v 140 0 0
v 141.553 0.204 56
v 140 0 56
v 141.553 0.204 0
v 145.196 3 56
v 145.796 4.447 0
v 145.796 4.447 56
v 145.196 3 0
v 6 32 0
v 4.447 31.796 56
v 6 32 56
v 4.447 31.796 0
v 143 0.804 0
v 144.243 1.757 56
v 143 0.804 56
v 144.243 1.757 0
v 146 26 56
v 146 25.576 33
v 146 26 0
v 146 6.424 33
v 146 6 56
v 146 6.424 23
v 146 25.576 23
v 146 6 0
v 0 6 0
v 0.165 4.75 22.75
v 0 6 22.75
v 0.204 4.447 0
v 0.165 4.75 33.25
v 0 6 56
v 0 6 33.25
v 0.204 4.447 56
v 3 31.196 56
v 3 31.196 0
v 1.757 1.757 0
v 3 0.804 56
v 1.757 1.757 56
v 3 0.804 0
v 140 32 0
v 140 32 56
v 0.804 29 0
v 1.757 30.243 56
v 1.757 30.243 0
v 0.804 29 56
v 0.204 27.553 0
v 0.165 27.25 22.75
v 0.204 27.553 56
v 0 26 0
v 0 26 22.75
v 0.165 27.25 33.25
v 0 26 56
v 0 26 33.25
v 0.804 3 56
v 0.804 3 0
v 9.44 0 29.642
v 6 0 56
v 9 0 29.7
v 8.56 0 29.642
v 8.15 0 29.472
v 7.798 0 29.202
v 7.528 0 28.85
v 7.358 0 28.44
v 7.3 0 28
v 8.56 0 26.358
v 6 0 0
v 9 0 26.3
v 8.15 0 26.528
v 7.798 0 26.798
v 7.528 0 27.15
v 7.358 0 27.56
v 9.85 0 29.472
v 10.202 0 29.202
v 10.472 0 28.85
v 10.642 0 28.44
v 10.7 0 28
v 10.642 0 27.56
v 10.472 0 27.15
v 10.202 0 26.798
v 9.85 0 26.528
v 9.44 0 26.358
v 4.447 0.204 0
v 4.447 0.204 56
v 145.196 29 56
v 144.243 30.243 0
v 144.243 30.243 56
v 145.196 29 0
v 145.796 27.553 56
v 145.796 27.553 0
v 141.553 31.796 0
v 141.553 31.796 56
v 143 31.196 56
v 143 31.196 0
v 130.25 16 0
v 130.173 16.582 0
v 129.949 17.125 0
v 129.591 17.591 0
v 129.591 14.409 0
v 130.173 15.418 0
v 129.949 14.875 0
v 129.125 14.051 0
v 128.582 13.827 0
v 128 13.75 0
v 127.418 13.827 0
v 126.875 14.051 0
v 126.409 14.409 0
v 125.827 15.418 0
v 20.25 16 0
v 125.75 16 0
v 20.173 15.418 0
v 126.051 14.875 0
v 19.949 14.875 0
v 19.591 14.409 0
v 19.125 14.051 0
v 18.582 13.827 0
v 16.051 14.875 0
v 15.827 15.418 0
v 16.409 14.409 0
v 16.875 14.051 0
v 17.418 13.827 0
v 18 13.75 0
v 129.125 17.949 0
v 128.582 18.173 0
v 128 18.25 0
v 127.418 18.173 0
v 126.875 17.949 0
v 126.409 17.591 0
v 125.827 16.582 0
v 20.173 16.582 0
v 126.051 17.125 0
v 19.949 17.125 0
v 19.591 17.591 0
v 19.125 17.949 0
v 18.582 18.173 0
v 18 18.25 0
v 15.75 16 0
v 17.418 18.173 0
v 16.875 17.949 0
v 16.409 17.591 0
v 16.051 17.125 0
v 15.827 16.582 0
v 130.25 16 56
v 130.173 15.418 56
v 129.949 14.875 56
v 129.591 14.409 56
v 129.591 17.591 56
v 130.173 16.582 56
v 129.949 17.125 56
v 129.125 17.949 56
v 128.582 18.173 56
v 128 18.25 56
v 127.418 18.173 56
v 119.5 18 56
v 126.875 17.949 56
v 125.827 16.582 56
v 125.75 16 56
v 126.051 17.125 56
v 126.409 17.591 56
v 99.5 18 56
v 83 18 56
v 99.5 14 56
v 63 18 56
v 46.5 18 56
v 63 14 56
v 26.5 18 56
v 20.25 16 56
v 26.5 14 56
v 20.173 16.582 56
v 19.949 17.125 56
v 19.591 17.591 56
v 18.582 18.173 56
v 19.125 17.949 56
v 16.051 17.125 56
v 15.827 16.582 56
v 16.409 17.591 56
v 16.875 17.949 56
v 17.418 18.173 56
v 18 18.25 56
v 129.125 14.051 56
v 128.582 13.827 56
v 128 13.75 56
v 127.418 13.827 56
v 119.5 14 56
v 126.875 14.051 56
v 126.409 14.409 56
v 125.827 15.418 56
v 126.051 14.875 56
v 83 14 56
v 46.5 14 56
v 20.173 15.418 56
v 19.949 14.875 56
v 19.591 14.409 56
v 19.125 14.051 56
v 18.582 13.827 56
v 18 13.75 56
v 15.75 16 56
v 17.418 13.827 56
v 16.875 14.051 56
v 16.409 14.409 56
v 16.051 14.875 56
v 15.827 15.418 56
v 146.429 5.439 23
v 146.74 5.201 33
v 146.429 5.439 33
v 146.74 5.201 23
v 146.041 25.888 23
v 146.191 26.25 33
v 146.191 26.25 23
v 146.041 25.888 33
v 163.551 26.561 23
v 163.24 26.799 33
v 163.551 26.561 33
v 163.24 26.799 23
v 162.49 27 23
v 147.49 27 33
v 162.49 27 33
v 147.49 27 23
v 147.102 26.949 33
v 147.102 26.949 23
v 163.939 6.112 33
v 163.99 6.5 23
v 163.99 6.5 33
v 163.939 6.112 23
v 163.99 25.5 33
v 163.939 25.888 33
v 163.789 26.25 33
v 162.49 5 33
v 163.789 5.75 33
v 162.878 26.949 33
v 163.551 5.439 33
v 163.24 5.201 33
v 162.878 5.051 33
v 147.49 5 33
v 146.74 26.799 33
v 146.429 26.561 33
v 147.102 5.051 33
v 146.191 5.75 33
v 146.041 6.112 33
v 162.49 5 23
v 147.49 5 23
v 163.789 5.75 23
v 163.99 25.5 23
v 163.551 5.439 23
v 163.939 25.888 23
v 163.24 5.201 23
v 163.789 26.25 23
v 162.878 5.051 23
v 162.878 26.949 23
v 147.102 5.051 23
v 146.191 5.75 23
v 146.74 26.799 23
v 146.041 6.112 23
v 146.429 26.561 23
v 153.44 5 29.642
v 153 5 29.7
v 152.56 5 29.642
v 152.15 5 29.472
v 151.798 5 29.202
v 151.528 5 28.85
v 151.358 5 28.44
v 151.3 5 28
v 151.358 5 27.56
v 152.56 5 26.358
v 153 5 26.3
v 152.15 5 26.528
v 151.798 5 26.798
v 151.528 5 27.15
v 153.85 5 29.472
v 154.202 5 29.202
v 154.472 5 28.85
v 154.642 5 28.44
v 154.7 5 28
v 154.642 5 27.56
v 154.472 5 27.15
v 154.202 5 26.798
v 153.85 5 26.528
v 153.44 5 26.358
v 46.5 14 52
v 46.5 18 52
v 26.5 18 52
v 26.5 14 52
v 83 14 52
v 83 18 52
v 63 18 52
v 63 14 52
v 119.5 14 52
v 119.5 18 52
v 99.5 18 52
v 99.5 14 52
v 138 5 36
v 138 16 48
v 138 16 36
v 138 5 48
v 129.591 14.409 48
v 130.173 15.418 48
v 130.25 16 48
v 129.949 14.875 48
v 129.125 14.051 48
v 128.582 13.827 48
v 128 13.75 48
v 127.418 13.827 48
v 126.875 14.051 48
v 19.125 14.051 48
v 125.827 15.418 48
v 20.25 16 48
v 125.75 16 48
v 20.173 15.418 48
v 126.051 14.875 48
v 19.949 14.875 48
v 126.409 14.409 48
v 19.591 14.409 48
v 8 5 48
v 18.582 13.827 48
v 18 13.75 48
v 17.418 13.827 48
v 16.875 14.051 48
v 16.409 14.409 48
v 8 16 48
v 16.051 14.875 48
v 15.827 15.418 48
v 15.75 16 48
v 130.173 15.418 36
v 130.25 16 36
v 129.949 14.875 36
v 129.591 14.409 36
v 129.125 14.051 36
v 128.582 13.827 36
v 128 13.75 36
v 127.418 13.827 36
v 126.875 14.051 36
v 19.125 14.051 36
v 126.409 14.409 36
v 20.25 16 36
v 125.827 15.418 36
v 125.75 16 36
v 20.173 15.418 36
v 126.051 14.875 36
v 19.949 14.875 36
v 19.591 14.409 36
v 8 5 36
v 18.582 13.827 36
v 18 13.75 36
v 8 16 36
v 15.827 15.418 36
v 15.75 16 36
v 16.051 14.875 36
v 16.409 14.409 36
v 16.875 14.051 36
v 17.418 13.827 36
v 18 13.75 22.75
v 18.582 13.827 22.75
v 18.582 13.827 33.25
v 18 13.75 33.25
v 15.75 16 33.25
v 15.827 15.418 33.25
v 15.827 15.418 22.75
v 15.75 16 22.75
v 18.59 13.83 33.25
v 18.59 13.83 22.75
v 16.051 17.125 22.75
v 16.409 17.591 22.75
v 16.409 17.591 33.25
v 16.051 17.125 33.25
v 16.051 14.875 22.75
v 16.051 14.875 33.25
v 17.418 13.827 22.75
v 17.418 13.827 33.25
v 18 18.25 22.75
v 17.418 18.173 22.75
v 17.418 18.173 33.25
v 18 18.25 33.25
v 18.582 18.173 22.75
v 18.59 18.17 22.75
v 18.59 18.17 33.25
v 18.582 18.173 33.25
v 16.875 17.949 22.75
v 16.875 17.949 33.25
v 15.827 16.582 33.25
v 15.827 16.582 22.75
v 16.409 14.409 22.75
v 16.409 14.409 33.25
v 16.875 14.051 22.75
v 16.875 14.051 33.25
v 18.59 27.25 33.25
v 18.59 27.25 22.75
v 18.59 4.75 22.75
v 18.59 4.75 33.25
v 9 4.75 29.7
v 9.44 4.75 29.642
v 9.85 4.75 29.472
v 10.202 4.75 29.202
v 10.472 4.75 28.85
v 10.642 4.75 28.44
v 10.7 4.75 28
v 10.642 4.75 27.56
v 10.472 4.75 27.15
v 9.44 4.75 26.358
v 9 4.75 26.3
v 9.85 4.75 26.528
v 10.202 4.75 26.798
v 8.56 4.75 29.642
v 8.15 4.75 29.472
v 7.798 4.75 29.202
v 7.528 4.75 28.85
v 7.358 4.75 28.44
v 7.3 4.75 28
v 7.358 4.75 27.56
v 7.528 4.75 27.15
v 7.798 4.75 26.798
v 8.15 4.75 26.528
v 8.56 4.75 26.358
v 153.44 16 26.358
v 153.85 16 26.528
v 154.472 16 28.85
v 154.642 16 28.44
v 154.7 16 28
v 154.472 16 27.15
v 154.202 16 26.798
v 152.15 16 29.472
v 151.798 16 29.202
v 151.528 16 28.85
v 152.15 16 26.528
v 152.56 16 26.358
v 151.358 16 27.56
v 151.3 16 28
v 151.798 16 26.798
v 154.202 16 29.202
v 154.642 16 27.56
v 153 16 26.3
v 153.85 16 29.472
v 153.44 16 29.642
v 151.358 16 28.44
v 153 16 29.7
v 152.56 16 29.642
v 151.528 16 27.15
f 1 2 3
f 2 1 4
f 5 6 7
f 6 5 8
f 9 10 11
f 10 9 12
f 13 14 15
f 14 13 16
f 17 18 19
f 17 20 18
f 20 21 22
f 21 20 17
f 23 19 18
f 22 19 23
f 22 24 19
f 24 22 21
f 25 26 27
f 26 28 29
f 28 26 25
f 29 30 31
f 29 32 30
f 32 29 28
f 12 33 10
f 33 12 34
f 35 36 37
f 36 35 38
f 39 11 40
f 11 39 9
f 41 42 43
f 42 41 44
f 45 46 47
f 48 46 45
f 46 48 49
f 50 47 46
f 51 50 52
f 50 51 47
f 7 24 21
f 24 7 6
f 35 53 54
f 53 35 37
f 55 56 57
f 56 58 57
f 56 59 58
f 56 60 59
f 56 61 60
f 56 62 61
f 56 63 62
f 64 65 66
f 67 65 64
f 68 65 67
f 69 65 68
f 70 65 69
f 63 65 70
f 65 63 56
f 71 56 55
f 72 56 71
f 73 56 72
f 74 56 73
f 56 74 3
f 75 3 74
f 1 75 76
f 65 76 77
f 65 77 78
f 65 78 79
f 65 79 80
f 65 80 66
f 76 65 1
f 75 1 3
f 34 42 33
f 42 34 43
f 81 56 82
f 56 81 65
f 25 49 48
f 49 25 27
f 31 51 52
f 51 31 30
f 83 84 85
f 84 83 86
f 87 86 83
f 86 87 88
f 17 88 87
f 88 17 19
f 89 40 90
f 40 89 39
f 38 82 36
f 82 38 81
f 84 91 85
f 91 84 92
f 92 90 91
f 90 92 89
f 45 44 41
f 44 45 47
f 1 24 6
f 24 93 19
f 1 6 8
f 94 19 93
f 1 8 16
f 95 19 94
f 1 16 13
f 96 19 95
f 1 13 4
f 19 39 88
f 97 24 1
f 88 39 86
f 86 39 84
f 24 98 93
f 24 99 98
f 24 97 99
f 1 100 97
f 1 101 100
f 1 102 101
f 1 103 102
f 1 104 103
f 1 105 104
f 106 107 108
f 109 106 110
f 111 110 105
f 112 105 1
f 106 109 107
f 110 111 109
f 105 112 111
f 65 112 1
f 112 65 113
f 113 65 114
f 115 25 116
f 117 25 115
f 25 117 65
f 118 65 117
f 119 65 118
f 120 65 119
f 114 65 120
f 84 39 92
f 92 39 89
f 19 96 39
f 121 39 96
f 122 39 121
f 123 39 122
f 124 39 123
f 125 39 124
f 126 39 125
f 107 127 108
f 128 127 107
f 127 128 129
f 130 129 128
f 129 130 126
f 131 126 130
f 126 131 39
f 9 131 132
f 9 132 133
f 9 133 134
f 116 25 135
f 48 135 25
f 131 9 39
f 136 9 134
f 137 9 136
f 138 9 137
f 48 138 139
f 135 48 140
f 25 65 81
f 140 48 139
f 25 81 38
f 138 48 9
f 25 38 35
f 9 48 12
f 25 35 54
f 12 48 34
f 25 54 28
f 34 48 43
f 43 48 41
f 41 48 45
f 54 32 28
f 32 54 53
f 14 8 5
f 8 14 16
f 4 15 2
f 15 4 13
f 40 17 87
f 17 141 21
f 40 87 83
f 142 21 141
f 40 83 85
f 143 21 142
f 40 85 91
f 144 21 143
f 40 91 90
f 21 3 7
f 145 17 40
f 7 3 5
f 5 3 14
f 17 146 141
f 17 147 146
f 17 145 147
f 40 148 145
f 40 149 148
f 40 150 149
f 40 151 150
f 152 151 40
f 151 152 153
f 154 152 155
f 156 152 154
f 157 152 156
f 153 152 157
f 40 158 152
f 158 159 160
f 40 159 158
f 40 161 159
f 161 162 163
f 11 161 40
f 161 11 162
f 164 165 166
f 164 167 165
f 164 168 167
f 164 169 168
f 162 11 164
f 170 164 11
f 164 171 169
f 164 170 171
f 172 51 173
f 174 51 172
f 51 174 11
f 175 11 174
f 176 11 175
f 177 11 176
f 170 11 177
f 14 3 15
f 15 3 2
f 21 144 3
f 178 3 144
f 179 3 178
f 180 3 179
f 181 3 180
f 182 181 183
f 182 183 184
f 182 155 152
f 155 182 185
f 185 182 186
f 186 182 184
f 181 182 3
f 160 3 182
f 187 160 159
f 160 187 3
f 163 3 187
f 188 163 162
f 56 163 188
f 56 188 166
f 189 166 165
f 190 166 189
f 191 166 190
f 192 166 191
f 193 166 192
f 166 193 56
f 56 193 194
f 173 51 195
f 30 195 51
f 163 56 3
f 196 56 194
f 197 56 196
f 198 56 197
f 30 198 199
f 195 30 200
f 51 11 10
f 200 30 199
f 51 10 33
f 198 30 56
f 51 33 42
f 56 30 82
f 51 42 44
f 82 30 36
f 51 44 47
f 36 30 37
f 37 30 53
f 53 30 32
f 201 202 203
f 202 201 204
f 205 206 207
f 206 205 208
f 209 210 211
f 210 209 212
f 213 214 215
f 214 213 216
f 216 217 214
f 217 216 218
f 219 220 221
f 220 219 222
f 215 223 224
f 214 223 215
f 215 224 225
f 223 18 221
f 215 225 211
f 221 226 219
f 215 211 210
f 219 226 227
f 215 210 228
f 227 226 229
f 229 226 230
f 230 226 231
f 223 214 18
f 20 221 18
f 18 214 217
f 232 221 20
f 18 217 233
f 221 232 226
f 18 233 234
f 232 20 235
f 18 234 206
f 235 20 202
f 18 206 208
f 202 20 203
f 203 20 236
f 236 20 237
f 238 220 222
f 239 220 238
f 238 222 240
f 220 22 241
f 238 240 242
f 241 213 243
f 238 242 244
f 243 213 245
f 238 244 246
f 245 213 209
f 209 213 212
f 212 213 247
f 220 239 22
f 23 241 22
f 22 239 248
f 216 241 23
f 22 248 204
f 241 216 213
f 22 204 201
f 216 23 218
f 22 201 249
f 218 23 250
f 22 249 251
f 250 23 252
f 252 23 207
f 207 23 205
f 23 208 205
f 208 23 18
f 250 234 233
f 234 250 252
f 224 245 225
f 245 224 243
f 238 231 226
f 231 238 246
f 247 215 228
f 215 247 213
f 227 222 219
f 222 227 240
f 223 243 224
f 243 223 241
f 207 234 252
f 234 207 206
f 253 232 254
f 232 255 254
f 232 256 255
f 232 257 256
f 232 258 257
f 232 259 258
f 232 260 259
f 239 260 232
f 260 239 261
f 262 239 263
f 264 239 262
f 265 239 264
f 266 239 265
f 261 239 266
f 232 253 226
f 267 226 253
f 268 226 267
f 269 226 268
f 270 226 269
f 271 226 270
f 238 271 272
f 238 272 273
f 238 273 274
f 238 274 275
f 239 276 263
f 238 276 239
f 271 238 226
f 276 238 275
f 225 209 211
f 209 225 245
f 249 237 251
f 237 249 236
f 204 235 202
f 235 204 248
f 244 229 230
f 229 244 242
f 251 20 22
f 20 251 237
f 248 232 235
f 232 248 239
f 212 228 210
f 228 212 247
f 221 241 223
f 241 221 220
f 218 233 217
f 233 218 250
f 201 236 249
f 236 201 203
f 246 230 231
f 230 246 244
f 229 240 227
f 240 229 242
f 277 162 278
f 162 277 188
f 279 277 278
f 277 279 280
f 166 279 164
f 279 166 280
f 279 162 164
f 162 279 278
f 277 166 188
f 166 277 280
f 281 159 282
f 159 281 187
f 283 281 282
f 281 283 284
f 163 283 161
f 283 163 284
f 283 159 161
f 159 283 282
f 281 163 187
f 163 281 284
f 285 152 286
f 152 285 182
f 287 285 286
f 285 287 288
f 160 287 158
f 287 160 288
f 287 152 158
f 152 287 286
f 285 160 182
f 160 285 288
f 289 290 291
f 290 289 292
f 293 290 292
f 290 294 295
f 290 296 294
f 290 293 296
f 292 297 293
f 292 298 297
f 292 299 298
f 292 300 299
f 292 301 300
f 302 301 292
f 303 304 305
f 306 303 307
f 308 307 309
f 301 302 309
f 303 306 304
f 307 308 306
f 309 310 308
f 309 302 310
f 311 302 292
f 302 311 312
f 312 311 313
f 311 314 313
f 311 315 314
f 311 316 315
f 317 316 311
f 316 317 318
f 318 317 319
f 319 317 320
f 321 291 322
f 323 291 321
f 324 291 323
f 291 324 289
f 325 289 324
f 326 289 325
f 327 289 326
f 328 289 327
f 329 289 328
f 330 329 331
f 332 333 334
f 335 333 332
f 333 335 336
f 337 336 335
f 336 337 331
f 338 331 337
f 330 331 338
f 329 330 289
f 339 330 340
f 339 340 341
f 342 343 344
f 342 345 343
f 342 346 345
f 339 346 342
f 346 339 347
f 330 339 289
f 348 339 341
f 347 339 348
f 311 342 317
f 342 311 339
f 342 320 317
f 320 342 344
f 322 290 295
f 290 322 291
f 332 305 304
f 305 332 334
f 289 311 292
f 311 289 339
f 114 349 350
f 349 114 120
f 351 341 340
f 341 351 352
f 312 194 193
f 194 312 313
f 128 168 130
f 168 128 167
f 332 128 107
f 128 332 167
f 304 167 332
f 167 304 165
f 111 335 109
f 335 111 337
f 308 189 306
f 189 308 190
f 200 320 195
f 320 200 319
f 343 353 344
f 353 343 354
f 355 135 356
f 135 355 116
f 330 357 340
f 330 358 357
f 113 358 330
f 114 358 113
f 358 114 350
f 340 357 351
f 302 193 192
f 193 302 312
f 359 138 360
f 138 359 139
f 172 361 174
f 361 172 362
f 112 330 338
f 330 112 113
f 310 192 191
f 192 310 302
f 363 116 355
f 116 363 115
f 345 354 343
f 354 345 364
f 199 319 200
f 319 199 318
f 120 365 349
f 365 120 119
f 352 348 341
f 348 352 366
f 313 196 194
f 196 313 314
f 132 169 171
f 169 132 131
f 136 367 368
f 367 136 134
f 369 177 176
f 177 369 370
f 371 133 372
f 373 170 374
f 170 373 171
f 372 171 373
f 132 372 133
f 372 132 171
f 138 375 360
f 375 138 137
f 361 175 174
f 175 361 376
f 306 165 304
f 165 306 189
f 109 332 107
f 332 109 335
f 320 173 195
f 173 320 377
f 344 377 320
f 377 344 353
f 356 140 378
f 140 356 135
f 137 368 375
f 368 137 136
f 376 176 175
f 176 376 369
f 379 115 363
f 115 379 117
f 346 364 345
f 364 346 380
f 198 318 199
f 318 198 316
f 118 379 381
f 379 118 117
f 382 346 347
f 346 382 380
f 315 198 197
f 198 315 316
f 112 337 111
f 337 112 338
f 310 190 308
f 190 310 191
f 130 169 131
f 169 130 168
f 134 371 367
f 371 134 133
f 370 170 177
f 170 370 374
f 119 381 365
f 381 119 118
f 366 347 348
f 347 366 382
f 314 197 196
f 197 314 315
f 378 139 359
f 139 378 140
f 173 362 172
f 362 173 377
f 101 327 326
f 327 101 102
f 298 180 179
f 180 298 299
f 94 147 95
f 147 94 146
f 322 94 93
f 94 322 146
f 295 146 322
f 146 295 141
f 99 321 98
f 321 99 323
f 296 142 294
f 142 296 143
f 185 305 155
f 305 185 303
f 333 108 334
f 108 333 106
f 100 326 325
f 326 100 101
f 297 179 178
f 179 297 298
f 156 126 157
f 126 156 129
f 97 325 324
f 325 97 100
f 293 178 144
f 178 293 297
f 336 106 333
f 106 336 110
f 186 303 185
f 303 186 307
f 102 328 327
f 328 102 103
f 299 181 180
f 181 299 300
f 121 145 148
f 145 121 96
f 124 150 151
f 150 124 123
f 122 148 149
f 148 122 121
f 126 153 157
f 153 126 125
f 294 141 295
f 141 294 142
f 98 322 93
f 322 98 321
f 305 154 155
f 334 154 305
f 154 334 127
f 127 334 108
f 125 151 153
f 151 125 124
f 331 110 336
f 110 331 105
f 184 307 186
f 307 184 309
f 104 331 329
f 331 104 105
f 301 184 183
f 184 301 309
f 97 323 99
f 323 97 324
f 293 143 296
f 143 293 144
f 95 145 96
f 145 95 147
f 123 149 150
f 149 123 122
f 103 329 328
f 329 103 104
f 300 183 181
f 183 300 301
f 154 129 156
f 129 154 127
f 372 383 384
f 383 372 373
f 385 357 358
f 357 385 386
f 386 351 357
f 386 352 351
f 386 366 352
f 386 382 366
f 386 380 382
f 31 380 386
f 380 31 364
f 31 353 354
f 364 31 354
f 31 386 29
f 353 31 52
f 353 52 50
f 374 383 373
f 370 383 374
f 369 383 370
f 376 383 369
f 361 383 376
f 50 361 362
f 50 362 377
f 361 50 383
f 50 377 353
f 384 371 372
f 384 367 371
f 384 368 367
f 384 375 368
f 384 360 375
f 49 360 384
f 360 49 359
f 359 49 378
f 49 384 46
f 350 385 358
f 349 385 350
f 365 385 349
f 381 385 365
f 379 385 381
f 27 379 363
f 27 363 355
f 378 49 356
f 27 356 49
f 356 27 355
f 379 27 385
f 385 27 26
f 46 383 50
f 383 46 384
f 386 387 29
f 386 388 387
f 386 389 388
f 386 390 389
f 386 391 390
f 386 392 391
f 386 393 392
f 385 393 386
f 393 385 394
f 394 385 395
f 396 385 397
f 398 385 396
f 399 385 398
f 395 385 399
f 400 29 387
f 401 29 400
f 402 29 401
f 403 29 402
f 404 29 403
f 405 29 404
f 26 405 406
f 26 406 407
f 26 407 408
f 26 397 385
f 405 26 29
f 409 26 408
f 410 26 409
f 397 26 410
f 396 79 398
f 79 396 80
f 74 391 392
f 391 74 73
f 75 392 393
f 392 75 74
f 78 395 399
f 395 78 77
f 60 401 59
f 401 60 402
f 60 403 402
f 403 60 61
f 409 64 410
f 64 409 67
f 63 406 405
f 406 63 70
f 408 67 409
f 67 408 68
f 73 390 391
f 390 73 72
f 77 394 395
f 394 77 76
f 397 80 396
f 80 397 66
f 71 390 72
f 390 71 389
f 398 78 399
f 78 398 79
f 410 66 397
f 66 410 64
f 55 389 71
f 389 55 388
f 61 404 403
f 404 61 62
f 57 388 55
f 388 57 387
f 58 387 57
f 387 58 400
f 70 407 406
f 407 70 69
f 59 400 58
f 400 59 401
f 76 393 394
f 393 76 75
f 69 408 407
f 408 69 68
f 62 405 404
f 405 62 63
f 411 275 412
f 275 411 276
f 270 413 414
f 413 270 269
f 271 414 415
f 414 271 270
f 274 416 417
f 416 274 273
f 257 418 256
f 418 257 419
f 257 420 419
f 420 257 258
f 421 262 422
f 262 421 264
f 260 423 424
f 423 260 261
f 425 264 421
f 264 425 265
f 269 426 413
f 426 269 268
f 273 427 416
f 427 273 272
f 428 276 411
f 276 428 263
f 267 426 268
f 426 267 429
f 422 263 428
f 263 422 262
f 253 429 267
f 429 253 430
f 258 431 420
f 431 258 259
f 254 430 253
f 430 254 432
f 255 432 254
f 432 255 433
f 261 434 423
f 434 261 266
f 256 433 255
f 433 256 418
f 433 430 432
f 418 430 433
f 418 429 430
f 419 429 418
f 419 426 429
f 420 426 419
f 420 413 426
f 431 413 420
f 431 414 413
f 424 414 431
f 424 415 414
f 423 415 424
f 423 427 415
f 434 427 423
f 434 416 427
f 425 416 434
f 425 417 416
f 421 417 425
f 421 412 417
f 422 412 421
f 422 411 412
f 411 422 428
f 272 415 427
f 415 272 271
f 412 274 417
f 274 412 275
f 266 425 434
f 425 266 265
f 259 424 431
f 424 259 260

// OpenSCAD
// file: 00_parameters.scad
// TenderCells DoorCell V1 shared parameters
// Units: millimeters

overall_w = 438;
overall_h = 368;
frame_depth = 56;

clear_w = 242;
clear_h = 312;

rail_thick = 32;
jamb_w = 48;
motor_jamb_w = 78;

// Printability targets
target_bed_xy = 220;
comfortable_part_max = 180;

// Modular frame split dimensions
top_seg_len = overall_w / 3;
bottom_seg_len = overall_w / 3;
left_jamb_seg_h = overall_h / 2;
right_lower_h = 118;
right_motor_h = 156;
right_upper_h = overall_h - right_lower_h - right_motor_h;

// Low-cost electronics envelope used by DoorCell V1.4.
// These dimensions are based on common generic modules, not a custom PCB.
esp32_board = [58, 31, 8];
drv8871_board = [31, 26, 7];
current_sensor_board = [26, 22, 7];
lm2596_board = [44, 22, 14];
inline_fuse_body = [45, 15, 14];
cn3065_board = [44, 24, 8];
electronics_clearance = 1.5;
controller_wall = 3;
controller_box_w = 170;
controller_box_h = 115;
controller_box_d = 46;
controller_lid_insert_offset = 11;
controller_m12_gland_d = 12.8;
controller_m10_gland_d = 10.6;
controller_m8_gland_d = 8.4;
controller_button_d = 16.2;

// Brass heat-set/push-in insert features.
insert_post_d = 8.0;
insert_post_h = 8.0;
insert_pilot_d = 4.6;
insert_pilot_depth = 6.5;
hold_down_screw_clearance = 3.4;

// Motor envelope for common 25GA/JGA25-370 gearmotors with optional encoder.
motor_body_d = 25.0;
motor_body_clearance_d = 27.2;
motor_body_len = 65;
motor_encoder_clearance = 16;
motor_mount_plate = [72, 92, 12];
motor_mount_cradle = [54, 74, 28];

// Optional solar add-on.
solar_panel_w = 145;
solar_panel_h = 145;
solar_panel_t = 4.0;
solar_panel_frame_border = 10;
solar_panel_frame_w = solar_panel_w + 2*solar_panel_frame_border;
solar_panel_frame_h = solar_panel_h + 2*solar_panel_frame_border;
solar_panel_back_depth = 14;
solar_panel_lip_overlap = 3;
solar_ball_d = 22;
solar_ball_socket_clearance = 0.45;
solar_mount_m5 = 5.4;

// Tongue-and-groove frame joints
// Fit target: common FDM printers with PETG/ASA.
// Clearance is per side, so sockets add 2x this value.
tongue_len = 18;
tongue_w = 22;
tongue_z = 10;
tongue_clearance_side = 0.25;
tongue_socket_depth_extra = 0.60;

door_w = 270;
door_h = 326;
door_t = 8;

track_gap = 11;
track_depth = 12;

// Rack-and-pinion drive
// Metric module gear math:
// circular_pitch = PI * module
// pitch_diameter = module * tooth_count
// outside_diameter = module * (tooth_count + 2)
// root_diameter = module * (tooth_count - 2.5)
gear_module = 2.0;
pressure_angle = 20;
gear_backlash = 0.20; // mm removed from rack tooth thickness at pitch line

pinion_teeth = 16;
pinion_pitch_d = gear_module * pinion_teeth;
pinion_pitch_radius = pinion_pitch_d / 2;
pinion_outer_d = gear_module * (pinion_teeth + 2);
pinion_outer_radius = pinion_outer_d / 2;
pinion_root_d = gear_module * (pinion_teeth - 2.5);
pinion_root_radius = pinion_root_d / 2;
pinion_thick = 12;
shaft_d = 6.2;

rack_tooth_count = 15;
rack_circular_pitch = 3.141592653589793 * gear_module;
rack_len = rack_circular_pitch * rack_tooth_count;
rack_w = 18;
rack_t = 6;
rack_addendum = gear_module;
rack_dedendum = 1.25 * gear_module;
rack_tooth_h = rack_addendum + rack_dedendum;
rack_pitch_line_z = rack_dedendum;
rack_tooth_pitch_thickness = rack_circular_pitch / 2 - gear_backlash;
rack_tooth_top_w = rack_tooth_pitch_thickness - 2 * rack_addendum * tan(pressure_angle);
rack_tooth_root_w = rack_tooth_pitch_thickness + 2 * rack_dedendum * tan(pressure_angle);

screw_m3 = 3.4;
screw_m4 = 4.5;
insert_m3 = 4.6;

eps = 0.01;

module rounded_box(size=[10,10,10], r=2) {
  hull() {
    translate([r,r,0]) cylinder(h=size[2], r=r, $fn=24);
    translate([size[0]-r,r,0]) cylinder(h=size[2], r=r, $fn=24);
    translate([r,size[1]-r,0]) cylinder(h=size[2], r=r, $fn=24);
    translate([size[0]-r,size[1]-r,0]) cylinder(h=size[2], r=r, $fn=24);
  }
}

module m3_clearance_hole(h=20) {
  cylinder(h=h, d=screw_m3, $fn=24);
}

module m4_clearance_hole(h=20) {
  cylinder(h=h, d=screw_m4, $fn=24);
}

module heat_insert_hole(h=6) {
  cylinder(h=h, d=insert_m3, $fn=24);
}

module heat_insert_post(h=insert_post_h, d=insert_post_d) {
  difference() {
    cylinder(h=h, d=d, $fn=32);
    translate([0,0,h-insert_pilot_depth+eps])
      cylinder(h=insert_pilot_depth+eps, d=insert_pilot_d, $fn=24);
  }
}

module m3_hold_down_slot(length=10, h=4) {
  hull() {
    translate([-length/2,0,0]) cylinder(h=h, d=hold_down_screw_clearance, $fn=20);
    translate([ length/2,0,0]) cylinder(h=h, d=hold_down_screw_clearance, $fn=20);
  }
}

module rail_channel(length=100) {
  cube([length, track_gap, track_depth]);
}

module frame_tongue_x() {
  rounded_box([tongue_len, tongue_w, tongue_z], r=1.5);
}

module frame_socket_x() {
  cube([
    tongue_len + tongue_socket_depth_extra,
    tongue_w + 2*tongue_clearance_side,
    tongue_z + 2*tongue_clearance_side
  ]);
}

module frame_tongue_y() {
  rounded_box([tongue_w, tongue_len, tongue_z], r=1.5);
}

module frame_socket_y() {
  cube([
    tongue_w + 2*tongue_clearance_side,
    tongue_len + tongue_socket_depth_extra,
    tongue_z + 2*tongue_clearance_side
  ]);
}

module rack_teeth(len=rack_len) {
  teeth = floor(len / rack_circular_pitch);
  for (i=[0:teeth-1]) {
    center = i*rack_circular_pitch + rack_circular_pitch/2;
    translate([0, 0, rack_t-0.20])
      linear_extrude(height=rack_w)
        polygon(points=[
          [center - rack_tooth_root_w/2, 0],
          [center + rack_tooth_root_w/2, 0],
          [center + rack_tooth_top_w/2, rack_tooth_h],
          [center - rack_tooth_top_w/2, rack_tooth_h]
        ]);
  }
}

function polar_point(r, a) = [r * cos(a), r * sin(a)];
// file: frame_modular_common.scad
include <00_parameters.scad>

module horizontal_frame_segment(seg_len=top_seg_len, rail_kind="top", joint_left="socket", joint_right="tongue") {
  difference() {
    union() {
      rounded_box([seg_len, rail_thick, frame_depth], r=6);

      if (joint_right == "tongue") {
        translate([seg_len - eps, rail_thick/2 - tongue_w/2, frame_depth/2 - tongue_z/2])
          frame_tongue_x();
      }
    }

    // Tongue receiver from previous segment.
    if (joint_left == "socket") {
      translate([
        -eps,
        rail_thick/2 - (tongue_w + 2*tongue_clearance_side)/2,
        frame_depth/2 - (tongue_z + 2*tongue_clearance_side)/2
      ])
        frame_socket_x();
    }

    // Sliding door guide channel.
    if (rail_kind == "top") {
      translate([8, rail_thick-track_gap-5, 8])
        rail_channel(length=seg_len-16);
    } else {
      translate([8, 5, frame_depth-track_depth-8])
        rail_channel(length=seg_len-16);

      // Drain slots for bottom rail.
      for (x=[seg_len*0.25, seg_len*0.5, seg_len*0.75]) {
        translate([x-10, rail_thick/2-2, frame_depth-4])
          cube([20, 4, 10]);
      }
    }

    // Coop mounting holes.
    for (x=[18, seg_len-18]) {
      translate([x, rail_thick/2, -eps])
        m4_clearance_hole(h=frame_depth+2);
    }

    // Cross-bolt holes near frame split joints.
    if (joint_left == "socket") {
      translate([tongue_len/2, rail_thick/2, frame_depth/2])
        rotate([90,0,0]) m3_clearance_hole(h=rail_thick+2);
    }
    if (joint_right == "tongue") {
      translate([seg_len + tongue_len/2 - 2, rail_thick/2, frame_depth/2])
        rotate([90,0,0]) m3_clearance_hole(h=rail_thick+2);
    }
  }
}

module left_jamb_segment(seg_h=left_jamb_seg_h, joint_bottom="socket", joint_top="tongue", corner_bottom=false, corner_top=false) {
  difference() {
    union() {
      rounded_box([jamb_w, seg_h, frame_depth], r=6);

      if (joint_top == "tongue") {
        translate([jamb_w/2 - tongue_w/2, seg_h - eps, frame_depth/2 - tongue_z/2])
          frame_tongue_y();
      }
    }

    if (joint_bottom == "socket") {
      translate([
        jamb_w/2 - (tongue_w + 2*tongue_clearance_side)/2,
        -eps,
        frame_depth/2 - (tongue_z + 2*tongue_clearance_side)/2
      ])
        frame_socket_y();
    }

    // Door pocket relief.
    translate([jamb_w-18, 0, 8])
      cube([16, seg_h, frame_depth-16]);

    // Coop mounting holes.
    for (y=[seg_h*0.28, seg_h*0.72]) {
      translate([jamb_w/2, y, -eps]) m4_clearance_hole(h=frame_depth+2);
    }

    // Rail-to-jamb corner holes.
    if (corner_bottom) {
      translate([jamb_w-10, 16, frame_depth/2])
        rotate([0,90,0]) m3_clearance_hole(h=20);
    }
    if (corner_top) {
      translate([jamb_w-10, seg_h-16, frame_depth/2])
        rotate([0,90,0]) m3_clearance_hole(h=20);
    }

    // Cross-bolt through tongue-and-groove.
    if (joint_bottom == "socket") {
      translate([jamb_w/2, tongue_len/2, frame_depth/2])
        rotate([0,90,0]) m3_clearance_hole(h=jamb_w+2);
    }
    if (joint_top == "tongue") {
      translate([jamb_w/2, seg_h + tongue_len/2 - 2, frame_depth/2])
        rotate([0,90,0]) m3_clearance_hole(h=jamb_w+2);
    }
  }
}

module right_jamb_segment(seg_h=120, has_motor_bay=false, joint_bottom="socket", joint_top="tongue", corner_bottom=false, corner_top=false) {
  difference() {
    union() {
      rounded_box([motor_jamb_w, seg_h, frame_depth], r=6);

      if (has_motor_bay) {
        translate([motor_jamb_w-8, 20, 0])
          rounded_box([70, seg_h-32, frame_depth], r=5);
      }

      if (joint_top == "tongue") {
        translate([motor_jamb_w/2 - tongue_w/2, seg_h - eps, frame_depth/2 - tongue_z/2])
          frame_tongue_y();
      }
    }

    if (joint_bottom == "socket") {
      translate([
        motor_jamb_w/2 - (tongue_w + 2*tongue_clearance_side)/2,
        -eps,
        frame_depth/2 - (tongue_z + 2*tongue_clearance_side)/2
      ])
        frame_socket_y();
    }

    // Door pocket relief.
    translate([0, 0, 8])
      cube([20, seg_h, frame_depth-16]);

    if (has_motor_bay) {
      // Motor cassette pocket sized for the revised 25GA mount.
      translate([motor_jamb_w+5, 33, 8])
        cube([62, 92, 40]);

      // Pinion/rack engagement window.
      translate([4, 68, 16])
        cube([46, 36, 24]);

      // Motor/control harness pass-through for M12-style cable gland routing.
      translate([motor_jamb_w+26, seg_h-42, 16])
        cube([24, 34, 26]);

      // Limit switch lead pass-throughs.
      translate([motor_jamb_w-2, 18, 18])
        cube([16, 18, 16]);
      translate([motor_jamb_w-2, seg_h-36, 18])
        cube([16, 18, 16]);
    }

    // Coop mounting holes.
    for (y=[seg_h*0.28, seg_h*0.72]) {
      translate([motor_jamb_w/2, y, -eps]) m4_clearance_hole(h=frame_depth+2);
    }

    // Rail-to-jamb corner holes.
    if (corner_bottom) {
      translate([10, 16, frame_depth/2])
        rotate([0,90,0]) m3_clearance_hole(h=20);
    }
    if (corner_top) {
      translate([10, seg_h-16, frame_depth/2])
        rotate([0,90,0]) m3_clearance_hole(h=20);
    }

    // Cross-bolt through tongue-and-groove.
    if (joint_bottom == "socket") {
      translate([motor_jamb_w/2, tongue_len/2, frame_depth/2])
        rotate([0,90,0]) m3_clearance_hole(h=motor_jamb_w+2);
    }
    if (joint_top == "tongue") {
      translate([motor_jamb_w/2, seg_h + tongue_len/2 - 2, frame_depth/2])
        rotate([0,90,0]) m3_clearance_hole(h=motor_jamb_w+2);
    }
  }
}
// main file
include <frame_modular_common.scad>

horizontal_frame_segment(seg_len=bottom_seg_len, rail_kind="bottom", joint_left="socket", joint_right="tongue");
